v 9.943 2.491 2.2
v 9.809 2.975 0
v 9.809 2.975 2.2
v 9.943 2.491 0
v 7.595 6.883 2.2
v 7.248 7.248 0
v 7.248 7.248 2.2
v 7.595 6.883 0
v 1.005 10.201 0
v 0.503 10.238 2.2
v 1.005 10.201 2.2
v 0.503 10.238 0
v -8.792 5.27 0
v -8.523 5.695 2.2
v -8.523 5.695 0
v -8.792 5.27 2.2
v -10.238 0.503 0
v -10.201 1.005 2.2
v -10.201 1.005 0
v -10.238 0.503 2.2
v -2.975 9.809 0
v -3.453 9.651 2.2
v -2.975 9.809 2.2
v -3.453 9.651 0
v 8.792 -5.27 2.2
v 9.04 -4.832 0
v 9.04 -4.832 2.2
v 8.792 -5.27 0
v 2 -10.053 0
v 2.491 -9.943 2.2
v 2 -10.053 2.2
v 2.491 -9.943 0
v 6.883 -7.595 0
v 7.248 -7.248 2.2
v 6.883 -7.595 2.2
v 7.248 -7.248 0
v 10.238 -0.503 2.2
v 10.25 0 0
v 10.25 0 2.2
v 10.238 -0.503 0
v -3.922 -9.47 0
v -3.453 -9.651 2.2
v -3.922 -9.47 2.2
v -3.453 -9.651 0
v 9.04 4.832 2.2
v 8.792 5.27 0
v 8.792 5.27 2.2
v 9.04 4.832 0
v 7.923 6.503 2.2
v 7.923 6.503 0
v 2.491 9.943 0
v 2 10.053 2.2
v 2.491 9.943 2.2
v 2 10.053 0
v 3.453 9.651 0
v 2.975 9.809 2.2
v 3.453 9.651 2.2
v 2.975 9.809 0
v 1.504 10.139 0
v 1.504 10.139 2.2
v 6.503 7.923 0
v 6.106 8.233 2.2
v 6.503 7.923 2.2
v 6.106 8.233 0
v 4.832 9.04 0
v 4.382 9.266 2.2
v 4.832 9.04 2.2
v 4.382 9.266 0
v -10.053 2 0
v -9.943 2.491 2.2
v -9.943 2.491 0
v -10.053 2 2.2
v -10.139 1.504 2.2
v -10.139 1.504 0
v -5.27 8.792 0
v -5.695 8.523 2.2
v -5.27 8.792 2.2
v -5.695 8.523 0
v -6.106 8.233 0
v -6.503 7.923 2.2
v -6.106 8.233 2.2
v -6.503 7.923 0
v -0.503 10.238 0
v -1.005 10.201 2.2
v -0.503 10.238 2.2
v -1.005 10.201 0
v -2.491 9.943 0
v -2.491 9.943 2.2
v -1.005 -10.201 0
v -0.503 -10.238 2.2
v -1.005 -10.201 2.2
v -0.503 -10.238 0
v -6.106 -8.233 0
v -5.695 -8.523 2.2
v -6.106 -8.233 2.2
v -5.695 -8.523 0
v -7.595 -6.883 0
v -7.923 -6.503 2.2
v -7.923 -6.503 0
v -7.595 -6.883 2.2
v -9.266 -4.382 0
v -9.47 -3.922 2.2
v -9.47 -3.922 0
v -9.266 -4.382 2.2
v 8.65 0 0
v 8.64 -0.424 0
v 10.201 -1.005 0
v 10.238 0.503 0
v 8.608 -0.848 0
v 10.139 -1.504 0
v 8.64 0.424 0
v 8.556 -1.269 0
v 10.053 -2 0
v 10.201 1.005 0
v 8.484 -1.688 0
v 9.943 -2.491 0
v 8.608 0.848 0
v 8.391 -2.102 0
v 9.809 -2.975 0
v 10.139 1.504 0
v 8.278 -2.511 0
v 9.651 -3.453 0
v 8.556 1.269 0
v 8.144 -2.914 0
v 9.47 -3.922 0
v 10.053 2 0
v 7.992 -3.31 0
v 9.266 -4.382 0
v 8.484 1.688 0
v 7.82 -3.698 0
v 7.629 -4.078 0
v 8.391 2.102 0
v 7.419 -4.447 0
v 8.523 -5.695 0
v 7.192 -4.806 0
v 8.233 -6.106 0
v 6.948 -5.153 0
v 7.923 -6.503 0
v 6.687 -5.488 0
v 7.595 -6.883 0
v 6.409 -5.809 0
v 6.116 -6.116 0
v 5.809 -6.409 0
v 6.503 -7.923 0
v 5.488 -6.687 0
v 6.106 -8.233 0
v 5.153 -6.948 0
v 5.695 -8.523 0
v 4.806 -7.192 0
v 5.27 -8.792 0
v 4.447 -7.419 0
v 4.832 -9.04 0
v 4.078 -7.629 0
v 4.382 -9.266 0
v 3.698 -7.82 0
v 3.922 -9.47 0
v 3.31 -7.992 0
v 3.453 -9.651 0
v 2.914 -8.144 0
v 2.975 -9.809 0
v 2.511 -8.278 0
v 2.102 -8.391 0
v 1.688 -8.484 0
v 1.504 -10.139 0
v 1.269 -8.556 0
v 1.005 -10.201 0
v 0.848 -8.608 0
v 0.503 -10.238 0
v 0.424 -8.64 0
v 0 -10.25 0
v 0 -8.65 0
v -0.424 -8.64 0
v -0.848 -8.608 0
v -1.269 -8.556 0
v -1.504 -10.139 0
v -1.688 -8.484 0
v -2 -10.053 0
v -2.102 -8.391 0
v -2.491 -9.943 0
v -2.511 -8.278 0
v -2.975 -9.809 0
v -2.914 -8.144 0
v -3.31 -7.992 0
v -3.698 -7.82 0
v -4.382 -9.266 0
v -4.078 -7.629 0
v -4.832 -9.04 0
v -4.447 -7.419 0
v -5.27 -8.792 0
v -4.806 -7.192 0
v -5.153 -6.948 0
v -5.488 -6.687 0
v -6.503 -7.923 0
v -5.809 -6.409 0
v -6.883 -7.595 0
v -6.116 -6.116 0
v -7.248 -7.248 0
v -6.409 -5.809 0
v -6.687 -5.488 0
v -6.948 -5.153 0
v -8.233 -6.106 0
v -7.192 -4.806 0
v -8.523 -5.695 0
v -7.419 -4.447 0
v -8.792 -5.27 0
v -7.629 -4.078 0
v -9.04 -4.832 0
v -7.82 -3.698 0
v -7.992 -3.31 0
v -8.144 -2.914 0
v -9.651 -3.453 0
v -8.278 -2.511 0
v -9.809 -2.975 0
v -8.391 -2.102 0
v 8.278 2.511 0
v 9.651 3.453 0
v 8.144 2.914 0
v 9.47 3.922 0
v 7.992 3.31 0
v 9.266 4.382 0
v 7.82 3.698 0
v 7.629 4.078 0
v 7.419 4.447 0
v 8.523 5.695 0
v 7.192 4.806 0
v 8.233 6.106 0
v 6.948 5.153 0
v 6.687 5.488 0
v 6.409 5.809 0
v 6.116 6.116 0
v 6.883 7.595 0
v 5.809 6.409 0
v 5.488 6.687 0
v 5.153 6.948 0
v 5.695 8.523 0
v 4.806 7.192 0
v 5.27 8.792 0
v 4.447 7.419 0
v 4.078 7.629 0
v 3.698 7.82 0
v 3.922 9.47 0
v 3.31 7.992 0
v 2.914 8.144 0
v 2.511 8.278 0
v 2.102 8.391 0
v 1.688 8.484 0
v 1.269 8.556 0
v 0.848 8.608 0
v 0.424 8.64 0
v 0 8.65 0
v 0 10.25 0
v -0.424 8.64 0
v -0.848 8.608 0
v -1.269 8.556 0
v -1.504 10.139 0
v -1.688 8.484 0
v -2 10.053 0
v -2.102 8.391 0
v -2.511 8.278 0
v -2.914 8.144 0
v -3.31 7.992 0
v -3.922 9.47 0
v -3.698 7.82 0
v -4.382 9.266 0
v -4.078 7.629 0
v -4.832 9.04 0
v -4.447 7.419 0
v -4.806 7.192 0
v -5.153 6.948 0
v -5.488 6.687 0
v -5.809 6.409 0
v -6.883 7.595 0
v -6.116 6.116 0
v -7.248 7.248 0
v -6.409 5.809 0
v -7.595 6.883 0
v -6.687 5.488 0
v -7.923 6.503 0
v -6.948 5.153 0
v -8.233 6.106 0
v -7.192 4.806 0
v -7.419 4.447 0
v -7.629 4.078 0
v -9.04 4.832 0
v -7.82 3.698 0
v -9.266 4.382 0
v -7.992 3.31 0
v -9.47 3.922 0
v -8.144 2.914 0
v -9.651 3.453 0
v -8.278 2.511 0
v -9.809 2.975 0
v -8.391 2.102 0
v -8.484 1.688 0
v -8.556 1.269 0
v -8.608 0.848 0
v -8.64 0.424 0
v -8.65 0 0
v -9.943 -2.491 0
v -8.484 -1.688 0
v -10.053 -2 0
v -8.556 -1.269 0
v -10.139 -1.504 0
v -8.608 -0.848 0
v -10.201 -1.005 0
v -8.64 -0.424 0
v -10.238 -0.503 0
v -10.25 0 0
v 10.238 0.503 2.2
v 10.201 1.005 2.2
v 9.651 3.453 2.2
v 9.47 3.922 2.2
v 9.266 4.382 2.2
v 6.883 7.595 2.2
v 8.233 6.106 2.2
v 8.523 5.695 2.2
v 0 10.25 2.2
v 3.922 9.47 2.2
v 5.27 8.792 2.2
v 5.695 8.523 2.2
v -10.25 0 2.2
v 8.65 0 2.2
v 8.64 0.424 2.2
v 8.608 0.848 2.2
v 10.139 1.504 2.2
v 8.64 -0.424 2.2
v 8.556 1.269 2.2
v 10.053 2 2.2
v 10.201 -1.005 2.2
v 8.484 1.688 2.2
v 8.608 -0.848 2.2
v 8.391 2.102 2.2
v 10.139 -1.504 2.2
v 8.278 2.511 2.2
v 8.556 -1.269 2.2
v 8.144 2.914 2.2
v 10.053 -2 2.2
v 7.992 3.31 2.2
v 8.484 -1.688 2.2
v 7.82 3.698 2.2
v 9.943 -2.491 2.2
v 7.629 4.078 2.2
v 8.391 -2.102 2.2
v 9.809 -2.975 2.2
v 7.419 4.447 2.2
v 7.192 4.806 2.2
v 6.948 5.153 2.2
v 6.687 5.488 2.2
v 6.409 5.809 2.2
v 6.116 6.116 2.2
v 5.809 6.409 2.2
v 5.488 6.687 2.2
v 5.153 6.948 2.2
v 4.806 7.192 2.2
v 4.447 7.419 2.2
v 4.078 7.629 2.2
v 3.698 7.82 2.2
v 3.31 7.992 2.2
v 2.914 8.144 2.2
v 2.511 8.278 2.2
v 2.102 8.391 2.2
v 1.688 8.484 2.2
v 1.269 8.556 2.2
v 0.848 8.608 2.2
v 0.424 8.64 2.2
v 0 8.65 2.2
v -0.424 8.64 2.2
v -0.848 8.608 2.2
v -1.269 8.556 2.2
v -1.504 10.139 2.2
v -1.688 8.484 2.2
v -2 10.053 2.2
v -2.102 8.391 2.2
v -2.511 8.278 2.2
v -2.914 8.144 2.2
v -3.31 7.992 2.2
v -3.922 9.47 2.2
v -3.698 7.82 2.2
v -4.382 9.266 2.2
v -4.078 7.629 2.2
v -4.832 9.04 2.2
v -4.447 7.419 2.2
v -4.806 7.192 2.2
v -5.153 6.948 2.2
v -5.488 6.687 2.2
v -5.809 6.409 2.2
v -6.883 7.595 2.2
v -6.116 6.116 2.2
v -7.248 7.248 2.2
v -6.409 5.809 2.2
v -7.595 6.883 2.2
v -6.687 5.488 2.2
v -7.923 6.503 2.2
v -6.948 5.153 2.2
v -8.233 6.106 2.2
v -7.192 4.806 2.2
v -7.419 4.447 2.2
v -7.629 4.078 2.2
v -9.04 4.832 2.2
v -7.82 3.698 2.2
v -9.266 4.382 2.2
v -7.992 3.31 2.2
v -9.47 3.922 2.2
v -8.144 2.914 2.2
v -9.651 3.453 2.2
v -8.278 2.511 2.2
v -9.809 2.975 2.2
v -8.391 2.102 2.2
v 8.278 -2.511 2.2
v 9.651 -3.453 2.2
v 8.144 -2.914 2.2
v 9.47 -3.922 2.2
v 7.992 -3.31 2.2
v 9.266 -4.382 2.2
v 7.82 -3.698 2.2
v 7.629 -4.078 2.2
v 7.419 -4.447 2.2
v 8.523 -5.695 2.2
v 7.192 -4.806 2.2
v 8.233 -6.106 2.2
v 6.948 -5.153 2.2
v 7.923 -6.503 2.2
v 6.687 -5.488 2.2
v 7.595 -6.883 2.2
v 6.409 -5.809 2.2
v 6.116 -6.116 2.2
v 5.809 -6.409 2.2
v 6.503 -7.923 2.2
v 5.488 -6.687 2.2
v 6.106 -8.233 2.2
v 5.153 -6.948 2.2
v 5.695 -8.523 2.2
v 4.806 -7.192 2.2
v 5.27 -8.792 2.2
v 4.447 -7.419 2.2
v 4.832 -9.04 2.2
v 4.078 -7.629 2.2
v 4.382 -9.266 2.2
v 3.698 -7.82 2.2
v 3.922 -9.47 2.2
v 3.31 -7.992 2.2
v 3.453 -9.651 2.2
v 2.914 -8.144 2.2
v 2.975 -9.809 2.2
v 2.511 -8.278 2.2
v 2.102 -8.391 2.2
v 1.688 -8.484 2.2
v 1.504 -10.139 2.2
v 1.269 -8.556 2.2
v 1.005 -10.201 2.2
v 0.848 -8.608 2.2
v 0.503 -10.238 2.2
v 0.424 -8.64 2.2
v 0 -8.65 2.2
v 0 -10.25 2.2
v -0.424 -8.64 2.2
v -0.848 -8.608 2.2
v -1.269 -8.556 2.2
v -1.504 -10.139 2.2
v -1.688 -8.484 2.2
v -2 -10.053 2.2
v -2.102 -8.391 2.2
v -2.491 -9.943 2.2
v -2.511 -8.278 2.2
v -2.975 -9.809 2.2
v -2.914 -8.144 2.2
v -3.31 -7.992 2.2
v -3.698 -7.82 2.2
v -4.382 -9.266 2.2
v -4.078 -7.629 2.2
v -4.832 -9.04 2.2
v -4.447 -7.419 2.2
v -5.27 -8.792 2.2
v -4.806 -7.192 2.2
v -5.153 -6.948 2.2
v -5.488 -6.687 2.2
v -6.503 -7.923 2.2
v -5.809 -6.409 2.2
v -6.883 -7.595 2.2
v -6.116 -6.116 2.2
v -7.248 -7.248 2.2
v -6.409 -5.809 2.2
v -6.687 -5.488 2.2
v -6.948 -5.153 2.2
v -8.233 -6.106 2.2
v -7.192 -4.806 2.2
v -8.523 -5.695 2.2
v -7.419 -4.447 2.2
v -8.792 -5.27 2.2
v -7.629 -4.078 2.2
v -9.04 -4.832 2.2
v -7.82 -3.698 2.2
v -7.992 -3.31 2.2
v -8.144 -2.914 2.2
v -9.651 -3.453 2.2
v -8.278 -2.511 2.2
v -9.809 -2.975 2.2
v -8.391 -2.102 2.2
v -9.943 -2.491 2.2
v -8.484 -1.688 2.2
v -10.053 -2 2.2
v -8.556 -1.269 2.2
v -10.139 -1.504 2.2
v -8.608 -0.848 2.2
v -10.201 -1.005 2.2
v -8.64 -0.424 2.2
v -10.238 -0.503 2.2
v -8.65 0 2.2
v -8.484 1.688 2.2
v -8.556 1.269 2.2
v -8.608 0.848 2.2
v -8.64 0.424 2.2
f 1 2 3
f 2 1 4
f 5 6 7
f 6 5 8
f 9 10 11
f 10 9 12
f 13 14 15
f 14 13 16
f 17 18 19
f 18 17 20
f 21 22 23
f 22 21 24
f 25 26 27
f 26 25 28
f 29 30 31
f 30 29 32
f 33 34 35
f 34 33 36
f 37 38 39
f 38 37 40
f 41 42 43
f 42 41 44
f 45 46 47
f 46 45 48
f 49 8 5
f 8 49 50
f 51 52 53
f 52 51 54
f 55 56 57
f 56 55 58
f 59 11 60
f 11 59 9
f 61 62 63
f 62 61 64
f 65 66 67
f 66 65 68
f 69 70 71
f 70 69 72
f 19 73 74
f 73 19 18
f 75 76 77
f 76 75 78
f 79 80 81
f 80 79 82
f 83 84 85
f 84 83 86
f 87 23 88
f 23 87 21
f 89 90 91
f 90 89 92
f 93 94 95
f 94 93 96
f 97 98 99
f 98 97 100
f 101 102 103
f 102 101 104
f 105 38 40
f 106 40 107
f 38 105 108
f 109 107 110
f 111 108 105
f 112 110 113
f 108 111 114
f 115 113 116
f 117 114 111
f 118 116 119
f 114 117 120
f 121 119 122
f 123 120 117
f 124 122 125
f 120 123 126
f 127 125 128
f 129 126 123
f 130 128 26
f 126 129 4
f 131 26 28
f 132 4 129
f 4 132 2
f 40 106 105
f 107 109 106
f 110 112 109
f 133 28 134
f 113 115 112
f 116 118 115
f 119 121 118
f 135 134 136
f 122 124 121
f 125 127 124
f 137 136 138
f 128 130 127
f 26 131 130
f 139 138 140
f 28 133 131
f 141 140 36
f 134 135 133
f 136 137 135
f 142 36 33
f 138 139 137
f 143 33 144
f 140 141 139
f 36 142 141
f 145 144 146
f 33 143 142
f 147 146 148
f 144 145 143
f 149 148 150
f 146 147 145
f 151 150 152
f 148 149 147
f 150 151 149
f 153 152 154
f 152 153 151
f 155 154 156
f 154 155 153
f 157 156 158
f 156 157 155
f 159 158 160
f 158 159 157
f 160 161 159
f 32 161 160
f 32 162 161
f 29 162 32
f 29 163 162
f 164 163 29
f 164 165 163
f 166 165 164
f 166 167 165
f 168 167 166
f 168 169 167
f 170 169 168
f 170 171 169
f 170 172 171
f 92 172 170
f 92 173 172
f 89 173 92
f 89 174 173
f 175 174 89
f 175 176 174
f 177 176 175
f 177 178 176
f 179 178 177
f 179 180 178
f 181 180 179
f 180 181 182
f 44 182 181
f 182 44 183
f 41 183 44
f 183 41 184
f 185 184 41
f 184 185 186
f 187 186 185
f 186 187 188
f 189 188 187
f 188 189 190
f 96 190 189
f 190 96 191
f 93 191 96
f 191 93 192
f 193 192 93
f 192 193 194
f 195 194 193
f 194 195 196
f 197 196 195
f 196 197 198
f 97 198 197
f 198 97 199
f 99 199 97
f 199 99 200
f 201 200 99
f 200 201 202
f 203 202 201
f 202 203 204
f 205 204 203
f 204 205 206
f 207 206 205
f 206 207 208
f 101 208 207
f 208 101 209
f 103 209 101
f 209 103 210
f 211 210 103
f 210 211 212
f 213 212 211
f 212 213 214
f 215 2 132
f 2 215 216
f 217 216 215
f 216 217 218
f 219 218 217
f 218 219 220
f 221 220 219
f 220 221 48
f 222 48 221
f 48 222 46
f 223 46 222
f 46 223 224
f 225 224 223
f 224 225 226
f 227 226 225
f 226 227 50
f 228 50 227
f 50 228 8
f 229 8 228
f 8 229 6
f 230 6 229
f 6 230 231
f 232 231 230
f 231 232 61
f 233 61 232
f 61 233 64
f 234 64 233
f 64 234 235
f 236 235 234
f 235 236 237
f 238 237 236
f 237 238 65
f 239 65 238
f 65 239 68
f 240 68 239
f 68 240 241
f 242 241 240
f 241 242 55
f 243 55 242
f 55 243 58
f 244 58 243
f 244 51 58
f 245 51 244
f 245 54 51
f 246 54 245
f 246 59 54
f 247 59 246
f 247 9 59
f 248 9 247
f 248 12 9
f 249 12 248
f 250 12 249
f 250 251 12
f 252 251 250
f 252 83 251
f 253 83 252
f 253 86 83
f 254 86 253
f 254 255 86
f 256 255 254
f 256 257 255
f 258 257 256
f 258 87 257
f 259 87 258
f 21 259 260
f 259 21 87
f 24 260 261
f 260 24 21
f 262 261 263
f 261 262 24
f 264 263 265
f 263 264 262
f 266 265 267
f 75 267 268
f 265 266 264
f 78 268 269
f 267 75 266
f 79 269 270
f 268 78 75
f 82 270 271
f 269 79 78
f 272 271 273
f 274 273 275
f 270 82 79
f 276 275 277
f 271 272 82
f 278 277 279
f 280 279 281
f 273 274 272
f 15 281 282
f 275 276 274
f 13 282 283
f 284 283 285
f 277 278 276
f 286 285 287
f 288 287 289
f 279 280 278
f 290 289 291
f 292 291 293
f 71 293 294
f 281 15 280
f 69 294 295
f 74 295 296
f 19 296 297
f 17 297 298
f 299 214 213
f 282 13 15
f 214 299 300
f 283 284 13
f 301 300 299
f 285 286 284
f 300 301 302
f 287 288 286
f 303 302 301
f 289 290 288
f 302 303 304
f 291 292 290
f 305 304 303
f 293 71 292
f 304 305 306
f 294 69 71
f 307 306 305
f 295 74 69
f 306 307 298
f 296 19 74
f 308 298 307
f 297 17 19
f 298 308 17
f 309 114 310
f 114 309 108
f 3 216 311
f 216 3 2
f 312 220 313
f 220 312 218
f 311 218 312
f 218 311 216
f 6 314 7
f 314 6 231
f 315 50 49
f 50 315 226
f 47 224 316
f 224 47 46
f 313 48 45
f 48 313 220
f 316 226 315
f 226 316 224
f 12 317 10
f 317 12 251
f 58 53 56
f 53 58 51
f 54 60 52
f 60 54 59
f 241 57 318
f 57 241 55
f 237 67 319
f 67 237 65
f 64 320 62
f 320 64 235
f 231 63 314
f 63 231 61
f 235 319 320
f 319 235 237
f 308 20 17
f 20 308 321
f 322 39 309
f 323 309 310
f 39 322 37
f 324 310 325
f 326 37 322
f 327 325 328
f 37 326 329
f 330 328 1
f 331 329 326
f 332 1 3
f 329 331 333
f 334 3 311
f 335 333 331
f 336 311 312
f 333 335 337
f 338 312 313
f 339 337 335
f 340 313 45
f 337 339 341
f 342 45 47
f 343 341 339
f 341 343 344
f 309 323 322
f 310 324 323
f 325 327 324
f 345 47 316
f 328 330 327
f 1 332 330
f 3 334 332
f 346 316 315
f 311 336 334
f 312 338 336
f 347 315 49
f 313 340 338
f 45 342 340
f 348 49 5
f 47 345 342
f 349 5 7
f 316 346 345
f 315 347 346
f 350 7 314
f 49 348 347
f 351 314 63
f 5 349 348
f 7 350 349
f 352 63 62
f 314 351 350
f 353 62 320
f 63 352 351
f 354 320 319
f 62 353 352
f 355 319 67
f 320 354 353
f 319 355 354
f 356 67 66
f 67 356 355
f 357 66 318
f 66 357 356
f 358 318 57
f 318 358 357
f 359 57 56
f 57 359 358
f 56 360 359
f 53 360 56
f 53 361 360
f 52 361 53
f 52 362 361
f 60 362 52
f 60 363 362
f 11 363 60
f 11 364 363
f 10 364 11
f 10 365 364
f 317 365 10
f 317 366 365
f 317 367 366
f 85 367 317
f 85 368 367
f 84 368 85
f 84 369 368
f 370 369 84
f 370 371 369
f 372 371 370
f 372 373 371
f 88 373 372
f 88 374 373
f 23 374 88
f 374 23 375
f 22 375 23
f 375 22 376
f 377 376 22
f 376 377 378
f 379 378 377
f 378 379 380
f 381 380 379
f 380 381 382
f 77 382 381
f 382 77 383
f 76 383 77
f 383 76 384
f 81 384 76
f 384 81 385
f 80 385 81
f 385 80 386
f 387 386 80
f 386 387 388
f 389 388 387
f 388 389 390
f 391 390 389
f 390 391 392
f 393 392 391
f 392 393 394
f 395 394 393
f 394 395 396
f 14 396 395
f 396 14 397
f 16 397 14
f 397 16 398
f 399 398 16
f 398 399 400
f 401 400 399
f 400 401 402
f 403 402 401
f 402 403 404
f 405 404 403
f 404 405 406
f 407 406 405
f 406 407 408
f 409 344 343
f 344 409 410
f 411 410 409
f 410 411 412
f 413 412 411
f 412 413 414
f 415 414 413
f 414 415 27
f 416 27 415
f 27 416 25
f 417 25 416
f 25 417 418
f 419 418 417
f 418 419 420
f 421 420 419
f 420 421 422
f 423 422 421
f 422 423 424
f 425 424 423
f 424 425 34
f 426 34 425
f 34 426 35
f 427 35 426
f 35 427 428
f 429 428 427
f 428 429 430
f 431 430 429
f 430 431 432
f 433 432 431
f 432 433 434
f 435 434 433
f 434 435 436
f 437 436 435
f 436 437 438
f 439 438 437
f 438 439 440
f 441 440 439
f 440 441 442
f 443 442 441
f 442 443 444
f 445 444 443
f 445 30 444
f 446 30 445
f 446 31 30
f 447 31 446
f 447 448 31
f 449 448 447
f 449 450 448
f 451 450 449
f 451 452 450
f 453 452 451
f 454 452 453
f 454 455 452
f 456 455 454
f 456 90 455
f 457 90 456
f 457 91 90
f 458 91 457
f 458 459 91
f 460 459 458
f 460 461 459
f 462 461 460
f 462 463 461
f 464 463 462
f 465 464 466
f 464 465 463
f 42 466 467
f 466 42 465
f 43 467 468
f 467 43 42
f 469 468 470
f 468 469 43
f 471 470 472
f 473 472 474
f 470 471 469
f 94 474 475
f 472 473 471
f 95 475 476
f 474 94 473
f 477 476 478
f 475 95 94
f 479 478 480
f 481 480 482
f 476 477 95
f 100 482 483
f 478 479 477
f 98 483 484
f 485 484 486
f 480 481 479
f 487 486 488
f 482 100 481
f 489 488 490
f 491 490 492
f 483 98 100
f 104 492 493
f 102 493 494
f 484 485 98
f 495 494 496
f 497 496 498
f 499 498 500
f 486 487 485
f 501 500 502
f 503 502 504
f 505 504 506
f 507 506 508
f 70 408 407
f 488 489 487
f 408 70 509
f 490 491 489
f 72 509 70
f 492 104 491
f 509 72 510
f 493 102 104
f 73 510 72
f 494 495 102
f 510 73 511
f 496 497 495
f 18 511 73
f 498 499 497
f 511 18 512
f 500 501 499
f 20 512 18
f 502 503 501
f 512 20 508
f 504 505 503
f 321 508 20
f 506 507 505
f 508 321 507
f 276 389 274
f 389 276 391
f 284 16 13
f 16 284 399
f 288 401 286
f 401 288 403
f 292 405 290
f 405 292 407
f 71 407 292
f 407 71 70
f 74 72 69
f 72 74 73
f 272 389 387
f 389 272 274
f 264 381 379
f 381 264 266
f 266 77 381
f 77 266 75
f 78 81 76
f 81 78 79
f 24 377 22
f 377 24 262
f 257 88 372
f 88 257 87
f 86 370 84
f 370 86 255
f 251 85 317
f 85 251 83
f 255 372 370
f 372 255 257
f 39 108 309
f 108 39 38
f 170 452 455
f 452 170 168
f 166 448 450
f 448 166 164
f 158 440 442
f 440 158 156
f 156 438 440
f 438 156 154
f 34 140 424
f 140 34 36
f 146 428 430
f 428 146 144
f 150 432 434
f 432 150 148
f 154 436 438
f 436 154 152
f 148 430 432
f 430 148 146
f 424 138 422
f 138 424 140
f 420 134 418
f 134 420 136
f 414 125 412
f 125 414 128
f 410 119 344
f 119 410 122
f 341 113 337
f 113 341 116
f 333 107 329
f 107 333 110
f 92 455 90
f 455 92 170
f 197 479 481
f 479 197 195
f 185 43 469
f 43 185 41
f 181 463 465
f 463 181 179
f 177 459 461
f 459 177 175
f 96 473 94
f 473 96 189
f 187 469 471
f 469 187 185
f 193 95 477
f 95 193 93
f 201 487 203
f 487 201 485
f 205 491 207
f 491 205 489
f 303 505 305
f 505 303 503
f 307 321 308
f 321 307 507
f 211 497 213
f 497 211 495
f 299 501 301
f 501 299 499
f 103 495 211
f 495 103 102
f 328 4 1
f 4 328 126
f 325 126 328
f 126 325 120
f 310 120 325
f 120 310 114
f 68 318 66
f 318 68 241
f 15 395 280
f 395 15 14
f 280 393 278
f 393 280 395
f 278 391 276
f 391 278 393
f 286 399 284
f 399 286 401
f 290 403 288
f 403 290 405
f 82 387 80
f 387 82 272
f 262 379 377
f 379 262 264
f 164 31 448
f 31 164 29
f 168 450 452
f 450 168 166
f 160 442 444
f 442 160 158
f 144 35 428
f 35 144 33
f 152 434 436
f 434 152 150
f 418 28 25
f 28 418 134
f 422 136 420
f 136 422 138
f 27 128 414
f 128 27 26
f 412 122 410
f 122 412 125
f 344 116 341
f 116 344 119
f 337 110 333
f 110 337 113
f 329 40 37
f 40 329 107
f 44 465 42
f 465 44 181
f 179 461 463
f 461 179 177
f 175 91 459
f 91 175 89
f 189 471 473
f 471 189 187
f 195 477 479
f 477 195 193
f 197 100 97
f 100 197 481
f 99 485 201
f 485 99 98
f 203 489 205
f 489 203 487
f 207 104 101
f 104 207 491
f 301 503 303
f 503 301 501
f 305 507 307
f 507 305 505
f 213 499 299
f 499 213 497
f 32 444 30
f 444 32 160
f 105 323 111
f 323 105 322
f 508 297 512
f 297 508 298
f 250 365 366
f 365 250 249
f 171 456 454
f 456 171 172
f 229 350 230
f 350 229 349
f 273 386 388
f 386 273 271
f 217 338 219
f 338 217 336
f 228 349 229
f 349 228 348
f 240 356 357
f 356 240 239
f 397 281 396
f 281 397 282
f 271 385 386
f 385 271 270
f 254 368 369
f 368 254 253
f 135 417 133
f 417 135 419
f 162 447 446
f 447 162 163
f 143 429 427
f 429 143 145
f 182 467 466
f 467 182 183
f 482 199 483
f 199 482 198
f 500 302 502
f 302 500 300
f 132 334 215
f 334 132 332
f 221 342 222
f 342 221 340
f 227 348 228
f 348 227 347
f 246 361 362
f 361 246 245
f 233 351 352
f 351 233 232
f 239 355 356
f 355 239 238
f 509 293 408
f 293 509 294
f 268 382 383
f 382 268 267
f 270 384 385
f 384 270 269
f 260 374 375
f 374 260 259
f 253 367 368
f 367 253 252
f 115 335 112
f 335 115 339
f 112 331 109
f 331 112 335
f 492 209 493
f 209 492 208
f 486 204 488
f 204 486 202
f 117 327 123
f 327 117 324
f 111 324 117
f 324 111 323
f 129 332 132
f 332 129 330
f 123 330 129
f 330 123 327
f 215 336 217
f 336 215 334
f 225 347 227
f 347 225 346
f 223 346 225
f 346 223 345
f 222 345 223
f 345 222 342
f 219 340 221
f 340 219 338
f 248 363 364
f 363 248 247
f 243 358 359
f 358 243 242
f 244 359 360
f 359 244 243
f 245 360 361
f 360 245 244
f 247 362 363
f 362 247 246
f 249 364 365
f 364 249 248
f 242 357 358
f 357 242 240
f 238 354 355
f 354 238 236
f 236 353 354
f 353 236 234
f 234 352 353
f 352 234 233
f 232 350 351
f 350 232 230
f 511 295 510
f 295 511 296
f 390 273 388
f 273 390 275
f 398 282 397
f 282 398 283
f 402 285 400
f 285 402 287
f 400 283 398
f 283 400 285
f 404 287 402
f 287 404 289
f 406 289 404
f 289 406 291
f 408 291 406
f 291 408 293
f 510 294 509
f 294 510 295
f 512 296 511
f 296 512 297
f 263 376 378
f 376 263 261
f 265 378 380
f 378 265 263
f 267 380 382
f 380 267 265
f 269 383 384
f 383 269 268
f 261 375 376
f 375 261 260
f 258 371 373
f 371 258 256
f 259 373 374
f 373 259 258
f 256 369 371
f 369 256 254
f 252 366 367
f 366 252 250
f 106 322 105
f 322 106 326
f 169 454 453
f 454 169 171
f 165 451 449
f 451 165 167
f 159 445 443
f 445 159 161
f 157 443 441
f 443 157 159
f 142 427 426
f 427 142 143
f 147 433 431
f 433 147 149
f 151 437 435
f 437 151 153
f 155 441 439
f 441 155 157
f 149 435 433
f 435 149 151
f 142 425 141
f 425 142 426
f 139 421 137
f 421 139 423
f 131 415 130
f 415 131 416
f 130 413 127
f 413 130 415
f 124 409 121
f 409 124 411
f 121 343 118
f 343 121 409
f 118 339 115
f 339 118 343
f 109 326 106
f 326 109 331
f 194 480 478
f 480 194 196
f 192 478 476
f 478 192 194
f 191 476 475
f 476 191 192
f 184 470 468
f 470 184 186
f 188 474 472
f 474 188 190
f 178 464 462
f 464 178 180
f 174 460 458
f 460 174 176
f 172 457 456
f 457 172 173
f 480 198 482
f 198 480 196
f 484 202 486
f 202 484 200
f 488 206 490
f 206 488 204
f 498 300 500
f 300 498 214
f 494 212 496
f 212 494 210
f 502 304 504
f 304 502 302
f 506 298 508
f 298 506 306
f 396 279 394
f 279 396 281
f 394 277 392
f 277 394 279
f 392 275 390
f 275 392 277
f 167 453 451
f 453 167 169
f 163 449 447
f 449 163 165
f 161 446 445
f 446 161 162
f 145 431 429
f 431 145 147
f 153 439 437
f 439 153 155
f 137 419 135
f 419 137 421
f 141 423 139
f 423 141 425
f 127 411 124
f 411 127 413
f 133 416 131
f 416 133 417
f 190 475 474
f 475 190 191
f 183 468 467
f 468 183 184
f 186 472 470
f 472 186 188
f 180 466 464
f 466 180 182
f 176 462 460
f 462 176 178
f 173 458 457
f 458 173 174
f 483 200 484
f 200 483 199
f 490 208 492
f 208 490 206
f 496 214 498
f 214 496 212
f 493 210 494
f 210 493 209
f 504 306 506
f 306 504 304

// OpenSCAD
// Paprastas modelis lydomoms ir vaškinėms dervoms: lygus žiedas.
// Spausdinamas gulsčias - vertinamas paviršius (lydymui svarbu glotnumas)
// ir ar žiedas neįskilęs. Vidinis skersmuo 17,3 mm (US 7).
$fn = 128;
ID = 17.3; band = 2.2; th = 1.6;
difference() { cylinder(d = ID + 2*th, h = band); translate([0,0,-0.1]) cylinder(d = ID, h = band + 0.2); }
